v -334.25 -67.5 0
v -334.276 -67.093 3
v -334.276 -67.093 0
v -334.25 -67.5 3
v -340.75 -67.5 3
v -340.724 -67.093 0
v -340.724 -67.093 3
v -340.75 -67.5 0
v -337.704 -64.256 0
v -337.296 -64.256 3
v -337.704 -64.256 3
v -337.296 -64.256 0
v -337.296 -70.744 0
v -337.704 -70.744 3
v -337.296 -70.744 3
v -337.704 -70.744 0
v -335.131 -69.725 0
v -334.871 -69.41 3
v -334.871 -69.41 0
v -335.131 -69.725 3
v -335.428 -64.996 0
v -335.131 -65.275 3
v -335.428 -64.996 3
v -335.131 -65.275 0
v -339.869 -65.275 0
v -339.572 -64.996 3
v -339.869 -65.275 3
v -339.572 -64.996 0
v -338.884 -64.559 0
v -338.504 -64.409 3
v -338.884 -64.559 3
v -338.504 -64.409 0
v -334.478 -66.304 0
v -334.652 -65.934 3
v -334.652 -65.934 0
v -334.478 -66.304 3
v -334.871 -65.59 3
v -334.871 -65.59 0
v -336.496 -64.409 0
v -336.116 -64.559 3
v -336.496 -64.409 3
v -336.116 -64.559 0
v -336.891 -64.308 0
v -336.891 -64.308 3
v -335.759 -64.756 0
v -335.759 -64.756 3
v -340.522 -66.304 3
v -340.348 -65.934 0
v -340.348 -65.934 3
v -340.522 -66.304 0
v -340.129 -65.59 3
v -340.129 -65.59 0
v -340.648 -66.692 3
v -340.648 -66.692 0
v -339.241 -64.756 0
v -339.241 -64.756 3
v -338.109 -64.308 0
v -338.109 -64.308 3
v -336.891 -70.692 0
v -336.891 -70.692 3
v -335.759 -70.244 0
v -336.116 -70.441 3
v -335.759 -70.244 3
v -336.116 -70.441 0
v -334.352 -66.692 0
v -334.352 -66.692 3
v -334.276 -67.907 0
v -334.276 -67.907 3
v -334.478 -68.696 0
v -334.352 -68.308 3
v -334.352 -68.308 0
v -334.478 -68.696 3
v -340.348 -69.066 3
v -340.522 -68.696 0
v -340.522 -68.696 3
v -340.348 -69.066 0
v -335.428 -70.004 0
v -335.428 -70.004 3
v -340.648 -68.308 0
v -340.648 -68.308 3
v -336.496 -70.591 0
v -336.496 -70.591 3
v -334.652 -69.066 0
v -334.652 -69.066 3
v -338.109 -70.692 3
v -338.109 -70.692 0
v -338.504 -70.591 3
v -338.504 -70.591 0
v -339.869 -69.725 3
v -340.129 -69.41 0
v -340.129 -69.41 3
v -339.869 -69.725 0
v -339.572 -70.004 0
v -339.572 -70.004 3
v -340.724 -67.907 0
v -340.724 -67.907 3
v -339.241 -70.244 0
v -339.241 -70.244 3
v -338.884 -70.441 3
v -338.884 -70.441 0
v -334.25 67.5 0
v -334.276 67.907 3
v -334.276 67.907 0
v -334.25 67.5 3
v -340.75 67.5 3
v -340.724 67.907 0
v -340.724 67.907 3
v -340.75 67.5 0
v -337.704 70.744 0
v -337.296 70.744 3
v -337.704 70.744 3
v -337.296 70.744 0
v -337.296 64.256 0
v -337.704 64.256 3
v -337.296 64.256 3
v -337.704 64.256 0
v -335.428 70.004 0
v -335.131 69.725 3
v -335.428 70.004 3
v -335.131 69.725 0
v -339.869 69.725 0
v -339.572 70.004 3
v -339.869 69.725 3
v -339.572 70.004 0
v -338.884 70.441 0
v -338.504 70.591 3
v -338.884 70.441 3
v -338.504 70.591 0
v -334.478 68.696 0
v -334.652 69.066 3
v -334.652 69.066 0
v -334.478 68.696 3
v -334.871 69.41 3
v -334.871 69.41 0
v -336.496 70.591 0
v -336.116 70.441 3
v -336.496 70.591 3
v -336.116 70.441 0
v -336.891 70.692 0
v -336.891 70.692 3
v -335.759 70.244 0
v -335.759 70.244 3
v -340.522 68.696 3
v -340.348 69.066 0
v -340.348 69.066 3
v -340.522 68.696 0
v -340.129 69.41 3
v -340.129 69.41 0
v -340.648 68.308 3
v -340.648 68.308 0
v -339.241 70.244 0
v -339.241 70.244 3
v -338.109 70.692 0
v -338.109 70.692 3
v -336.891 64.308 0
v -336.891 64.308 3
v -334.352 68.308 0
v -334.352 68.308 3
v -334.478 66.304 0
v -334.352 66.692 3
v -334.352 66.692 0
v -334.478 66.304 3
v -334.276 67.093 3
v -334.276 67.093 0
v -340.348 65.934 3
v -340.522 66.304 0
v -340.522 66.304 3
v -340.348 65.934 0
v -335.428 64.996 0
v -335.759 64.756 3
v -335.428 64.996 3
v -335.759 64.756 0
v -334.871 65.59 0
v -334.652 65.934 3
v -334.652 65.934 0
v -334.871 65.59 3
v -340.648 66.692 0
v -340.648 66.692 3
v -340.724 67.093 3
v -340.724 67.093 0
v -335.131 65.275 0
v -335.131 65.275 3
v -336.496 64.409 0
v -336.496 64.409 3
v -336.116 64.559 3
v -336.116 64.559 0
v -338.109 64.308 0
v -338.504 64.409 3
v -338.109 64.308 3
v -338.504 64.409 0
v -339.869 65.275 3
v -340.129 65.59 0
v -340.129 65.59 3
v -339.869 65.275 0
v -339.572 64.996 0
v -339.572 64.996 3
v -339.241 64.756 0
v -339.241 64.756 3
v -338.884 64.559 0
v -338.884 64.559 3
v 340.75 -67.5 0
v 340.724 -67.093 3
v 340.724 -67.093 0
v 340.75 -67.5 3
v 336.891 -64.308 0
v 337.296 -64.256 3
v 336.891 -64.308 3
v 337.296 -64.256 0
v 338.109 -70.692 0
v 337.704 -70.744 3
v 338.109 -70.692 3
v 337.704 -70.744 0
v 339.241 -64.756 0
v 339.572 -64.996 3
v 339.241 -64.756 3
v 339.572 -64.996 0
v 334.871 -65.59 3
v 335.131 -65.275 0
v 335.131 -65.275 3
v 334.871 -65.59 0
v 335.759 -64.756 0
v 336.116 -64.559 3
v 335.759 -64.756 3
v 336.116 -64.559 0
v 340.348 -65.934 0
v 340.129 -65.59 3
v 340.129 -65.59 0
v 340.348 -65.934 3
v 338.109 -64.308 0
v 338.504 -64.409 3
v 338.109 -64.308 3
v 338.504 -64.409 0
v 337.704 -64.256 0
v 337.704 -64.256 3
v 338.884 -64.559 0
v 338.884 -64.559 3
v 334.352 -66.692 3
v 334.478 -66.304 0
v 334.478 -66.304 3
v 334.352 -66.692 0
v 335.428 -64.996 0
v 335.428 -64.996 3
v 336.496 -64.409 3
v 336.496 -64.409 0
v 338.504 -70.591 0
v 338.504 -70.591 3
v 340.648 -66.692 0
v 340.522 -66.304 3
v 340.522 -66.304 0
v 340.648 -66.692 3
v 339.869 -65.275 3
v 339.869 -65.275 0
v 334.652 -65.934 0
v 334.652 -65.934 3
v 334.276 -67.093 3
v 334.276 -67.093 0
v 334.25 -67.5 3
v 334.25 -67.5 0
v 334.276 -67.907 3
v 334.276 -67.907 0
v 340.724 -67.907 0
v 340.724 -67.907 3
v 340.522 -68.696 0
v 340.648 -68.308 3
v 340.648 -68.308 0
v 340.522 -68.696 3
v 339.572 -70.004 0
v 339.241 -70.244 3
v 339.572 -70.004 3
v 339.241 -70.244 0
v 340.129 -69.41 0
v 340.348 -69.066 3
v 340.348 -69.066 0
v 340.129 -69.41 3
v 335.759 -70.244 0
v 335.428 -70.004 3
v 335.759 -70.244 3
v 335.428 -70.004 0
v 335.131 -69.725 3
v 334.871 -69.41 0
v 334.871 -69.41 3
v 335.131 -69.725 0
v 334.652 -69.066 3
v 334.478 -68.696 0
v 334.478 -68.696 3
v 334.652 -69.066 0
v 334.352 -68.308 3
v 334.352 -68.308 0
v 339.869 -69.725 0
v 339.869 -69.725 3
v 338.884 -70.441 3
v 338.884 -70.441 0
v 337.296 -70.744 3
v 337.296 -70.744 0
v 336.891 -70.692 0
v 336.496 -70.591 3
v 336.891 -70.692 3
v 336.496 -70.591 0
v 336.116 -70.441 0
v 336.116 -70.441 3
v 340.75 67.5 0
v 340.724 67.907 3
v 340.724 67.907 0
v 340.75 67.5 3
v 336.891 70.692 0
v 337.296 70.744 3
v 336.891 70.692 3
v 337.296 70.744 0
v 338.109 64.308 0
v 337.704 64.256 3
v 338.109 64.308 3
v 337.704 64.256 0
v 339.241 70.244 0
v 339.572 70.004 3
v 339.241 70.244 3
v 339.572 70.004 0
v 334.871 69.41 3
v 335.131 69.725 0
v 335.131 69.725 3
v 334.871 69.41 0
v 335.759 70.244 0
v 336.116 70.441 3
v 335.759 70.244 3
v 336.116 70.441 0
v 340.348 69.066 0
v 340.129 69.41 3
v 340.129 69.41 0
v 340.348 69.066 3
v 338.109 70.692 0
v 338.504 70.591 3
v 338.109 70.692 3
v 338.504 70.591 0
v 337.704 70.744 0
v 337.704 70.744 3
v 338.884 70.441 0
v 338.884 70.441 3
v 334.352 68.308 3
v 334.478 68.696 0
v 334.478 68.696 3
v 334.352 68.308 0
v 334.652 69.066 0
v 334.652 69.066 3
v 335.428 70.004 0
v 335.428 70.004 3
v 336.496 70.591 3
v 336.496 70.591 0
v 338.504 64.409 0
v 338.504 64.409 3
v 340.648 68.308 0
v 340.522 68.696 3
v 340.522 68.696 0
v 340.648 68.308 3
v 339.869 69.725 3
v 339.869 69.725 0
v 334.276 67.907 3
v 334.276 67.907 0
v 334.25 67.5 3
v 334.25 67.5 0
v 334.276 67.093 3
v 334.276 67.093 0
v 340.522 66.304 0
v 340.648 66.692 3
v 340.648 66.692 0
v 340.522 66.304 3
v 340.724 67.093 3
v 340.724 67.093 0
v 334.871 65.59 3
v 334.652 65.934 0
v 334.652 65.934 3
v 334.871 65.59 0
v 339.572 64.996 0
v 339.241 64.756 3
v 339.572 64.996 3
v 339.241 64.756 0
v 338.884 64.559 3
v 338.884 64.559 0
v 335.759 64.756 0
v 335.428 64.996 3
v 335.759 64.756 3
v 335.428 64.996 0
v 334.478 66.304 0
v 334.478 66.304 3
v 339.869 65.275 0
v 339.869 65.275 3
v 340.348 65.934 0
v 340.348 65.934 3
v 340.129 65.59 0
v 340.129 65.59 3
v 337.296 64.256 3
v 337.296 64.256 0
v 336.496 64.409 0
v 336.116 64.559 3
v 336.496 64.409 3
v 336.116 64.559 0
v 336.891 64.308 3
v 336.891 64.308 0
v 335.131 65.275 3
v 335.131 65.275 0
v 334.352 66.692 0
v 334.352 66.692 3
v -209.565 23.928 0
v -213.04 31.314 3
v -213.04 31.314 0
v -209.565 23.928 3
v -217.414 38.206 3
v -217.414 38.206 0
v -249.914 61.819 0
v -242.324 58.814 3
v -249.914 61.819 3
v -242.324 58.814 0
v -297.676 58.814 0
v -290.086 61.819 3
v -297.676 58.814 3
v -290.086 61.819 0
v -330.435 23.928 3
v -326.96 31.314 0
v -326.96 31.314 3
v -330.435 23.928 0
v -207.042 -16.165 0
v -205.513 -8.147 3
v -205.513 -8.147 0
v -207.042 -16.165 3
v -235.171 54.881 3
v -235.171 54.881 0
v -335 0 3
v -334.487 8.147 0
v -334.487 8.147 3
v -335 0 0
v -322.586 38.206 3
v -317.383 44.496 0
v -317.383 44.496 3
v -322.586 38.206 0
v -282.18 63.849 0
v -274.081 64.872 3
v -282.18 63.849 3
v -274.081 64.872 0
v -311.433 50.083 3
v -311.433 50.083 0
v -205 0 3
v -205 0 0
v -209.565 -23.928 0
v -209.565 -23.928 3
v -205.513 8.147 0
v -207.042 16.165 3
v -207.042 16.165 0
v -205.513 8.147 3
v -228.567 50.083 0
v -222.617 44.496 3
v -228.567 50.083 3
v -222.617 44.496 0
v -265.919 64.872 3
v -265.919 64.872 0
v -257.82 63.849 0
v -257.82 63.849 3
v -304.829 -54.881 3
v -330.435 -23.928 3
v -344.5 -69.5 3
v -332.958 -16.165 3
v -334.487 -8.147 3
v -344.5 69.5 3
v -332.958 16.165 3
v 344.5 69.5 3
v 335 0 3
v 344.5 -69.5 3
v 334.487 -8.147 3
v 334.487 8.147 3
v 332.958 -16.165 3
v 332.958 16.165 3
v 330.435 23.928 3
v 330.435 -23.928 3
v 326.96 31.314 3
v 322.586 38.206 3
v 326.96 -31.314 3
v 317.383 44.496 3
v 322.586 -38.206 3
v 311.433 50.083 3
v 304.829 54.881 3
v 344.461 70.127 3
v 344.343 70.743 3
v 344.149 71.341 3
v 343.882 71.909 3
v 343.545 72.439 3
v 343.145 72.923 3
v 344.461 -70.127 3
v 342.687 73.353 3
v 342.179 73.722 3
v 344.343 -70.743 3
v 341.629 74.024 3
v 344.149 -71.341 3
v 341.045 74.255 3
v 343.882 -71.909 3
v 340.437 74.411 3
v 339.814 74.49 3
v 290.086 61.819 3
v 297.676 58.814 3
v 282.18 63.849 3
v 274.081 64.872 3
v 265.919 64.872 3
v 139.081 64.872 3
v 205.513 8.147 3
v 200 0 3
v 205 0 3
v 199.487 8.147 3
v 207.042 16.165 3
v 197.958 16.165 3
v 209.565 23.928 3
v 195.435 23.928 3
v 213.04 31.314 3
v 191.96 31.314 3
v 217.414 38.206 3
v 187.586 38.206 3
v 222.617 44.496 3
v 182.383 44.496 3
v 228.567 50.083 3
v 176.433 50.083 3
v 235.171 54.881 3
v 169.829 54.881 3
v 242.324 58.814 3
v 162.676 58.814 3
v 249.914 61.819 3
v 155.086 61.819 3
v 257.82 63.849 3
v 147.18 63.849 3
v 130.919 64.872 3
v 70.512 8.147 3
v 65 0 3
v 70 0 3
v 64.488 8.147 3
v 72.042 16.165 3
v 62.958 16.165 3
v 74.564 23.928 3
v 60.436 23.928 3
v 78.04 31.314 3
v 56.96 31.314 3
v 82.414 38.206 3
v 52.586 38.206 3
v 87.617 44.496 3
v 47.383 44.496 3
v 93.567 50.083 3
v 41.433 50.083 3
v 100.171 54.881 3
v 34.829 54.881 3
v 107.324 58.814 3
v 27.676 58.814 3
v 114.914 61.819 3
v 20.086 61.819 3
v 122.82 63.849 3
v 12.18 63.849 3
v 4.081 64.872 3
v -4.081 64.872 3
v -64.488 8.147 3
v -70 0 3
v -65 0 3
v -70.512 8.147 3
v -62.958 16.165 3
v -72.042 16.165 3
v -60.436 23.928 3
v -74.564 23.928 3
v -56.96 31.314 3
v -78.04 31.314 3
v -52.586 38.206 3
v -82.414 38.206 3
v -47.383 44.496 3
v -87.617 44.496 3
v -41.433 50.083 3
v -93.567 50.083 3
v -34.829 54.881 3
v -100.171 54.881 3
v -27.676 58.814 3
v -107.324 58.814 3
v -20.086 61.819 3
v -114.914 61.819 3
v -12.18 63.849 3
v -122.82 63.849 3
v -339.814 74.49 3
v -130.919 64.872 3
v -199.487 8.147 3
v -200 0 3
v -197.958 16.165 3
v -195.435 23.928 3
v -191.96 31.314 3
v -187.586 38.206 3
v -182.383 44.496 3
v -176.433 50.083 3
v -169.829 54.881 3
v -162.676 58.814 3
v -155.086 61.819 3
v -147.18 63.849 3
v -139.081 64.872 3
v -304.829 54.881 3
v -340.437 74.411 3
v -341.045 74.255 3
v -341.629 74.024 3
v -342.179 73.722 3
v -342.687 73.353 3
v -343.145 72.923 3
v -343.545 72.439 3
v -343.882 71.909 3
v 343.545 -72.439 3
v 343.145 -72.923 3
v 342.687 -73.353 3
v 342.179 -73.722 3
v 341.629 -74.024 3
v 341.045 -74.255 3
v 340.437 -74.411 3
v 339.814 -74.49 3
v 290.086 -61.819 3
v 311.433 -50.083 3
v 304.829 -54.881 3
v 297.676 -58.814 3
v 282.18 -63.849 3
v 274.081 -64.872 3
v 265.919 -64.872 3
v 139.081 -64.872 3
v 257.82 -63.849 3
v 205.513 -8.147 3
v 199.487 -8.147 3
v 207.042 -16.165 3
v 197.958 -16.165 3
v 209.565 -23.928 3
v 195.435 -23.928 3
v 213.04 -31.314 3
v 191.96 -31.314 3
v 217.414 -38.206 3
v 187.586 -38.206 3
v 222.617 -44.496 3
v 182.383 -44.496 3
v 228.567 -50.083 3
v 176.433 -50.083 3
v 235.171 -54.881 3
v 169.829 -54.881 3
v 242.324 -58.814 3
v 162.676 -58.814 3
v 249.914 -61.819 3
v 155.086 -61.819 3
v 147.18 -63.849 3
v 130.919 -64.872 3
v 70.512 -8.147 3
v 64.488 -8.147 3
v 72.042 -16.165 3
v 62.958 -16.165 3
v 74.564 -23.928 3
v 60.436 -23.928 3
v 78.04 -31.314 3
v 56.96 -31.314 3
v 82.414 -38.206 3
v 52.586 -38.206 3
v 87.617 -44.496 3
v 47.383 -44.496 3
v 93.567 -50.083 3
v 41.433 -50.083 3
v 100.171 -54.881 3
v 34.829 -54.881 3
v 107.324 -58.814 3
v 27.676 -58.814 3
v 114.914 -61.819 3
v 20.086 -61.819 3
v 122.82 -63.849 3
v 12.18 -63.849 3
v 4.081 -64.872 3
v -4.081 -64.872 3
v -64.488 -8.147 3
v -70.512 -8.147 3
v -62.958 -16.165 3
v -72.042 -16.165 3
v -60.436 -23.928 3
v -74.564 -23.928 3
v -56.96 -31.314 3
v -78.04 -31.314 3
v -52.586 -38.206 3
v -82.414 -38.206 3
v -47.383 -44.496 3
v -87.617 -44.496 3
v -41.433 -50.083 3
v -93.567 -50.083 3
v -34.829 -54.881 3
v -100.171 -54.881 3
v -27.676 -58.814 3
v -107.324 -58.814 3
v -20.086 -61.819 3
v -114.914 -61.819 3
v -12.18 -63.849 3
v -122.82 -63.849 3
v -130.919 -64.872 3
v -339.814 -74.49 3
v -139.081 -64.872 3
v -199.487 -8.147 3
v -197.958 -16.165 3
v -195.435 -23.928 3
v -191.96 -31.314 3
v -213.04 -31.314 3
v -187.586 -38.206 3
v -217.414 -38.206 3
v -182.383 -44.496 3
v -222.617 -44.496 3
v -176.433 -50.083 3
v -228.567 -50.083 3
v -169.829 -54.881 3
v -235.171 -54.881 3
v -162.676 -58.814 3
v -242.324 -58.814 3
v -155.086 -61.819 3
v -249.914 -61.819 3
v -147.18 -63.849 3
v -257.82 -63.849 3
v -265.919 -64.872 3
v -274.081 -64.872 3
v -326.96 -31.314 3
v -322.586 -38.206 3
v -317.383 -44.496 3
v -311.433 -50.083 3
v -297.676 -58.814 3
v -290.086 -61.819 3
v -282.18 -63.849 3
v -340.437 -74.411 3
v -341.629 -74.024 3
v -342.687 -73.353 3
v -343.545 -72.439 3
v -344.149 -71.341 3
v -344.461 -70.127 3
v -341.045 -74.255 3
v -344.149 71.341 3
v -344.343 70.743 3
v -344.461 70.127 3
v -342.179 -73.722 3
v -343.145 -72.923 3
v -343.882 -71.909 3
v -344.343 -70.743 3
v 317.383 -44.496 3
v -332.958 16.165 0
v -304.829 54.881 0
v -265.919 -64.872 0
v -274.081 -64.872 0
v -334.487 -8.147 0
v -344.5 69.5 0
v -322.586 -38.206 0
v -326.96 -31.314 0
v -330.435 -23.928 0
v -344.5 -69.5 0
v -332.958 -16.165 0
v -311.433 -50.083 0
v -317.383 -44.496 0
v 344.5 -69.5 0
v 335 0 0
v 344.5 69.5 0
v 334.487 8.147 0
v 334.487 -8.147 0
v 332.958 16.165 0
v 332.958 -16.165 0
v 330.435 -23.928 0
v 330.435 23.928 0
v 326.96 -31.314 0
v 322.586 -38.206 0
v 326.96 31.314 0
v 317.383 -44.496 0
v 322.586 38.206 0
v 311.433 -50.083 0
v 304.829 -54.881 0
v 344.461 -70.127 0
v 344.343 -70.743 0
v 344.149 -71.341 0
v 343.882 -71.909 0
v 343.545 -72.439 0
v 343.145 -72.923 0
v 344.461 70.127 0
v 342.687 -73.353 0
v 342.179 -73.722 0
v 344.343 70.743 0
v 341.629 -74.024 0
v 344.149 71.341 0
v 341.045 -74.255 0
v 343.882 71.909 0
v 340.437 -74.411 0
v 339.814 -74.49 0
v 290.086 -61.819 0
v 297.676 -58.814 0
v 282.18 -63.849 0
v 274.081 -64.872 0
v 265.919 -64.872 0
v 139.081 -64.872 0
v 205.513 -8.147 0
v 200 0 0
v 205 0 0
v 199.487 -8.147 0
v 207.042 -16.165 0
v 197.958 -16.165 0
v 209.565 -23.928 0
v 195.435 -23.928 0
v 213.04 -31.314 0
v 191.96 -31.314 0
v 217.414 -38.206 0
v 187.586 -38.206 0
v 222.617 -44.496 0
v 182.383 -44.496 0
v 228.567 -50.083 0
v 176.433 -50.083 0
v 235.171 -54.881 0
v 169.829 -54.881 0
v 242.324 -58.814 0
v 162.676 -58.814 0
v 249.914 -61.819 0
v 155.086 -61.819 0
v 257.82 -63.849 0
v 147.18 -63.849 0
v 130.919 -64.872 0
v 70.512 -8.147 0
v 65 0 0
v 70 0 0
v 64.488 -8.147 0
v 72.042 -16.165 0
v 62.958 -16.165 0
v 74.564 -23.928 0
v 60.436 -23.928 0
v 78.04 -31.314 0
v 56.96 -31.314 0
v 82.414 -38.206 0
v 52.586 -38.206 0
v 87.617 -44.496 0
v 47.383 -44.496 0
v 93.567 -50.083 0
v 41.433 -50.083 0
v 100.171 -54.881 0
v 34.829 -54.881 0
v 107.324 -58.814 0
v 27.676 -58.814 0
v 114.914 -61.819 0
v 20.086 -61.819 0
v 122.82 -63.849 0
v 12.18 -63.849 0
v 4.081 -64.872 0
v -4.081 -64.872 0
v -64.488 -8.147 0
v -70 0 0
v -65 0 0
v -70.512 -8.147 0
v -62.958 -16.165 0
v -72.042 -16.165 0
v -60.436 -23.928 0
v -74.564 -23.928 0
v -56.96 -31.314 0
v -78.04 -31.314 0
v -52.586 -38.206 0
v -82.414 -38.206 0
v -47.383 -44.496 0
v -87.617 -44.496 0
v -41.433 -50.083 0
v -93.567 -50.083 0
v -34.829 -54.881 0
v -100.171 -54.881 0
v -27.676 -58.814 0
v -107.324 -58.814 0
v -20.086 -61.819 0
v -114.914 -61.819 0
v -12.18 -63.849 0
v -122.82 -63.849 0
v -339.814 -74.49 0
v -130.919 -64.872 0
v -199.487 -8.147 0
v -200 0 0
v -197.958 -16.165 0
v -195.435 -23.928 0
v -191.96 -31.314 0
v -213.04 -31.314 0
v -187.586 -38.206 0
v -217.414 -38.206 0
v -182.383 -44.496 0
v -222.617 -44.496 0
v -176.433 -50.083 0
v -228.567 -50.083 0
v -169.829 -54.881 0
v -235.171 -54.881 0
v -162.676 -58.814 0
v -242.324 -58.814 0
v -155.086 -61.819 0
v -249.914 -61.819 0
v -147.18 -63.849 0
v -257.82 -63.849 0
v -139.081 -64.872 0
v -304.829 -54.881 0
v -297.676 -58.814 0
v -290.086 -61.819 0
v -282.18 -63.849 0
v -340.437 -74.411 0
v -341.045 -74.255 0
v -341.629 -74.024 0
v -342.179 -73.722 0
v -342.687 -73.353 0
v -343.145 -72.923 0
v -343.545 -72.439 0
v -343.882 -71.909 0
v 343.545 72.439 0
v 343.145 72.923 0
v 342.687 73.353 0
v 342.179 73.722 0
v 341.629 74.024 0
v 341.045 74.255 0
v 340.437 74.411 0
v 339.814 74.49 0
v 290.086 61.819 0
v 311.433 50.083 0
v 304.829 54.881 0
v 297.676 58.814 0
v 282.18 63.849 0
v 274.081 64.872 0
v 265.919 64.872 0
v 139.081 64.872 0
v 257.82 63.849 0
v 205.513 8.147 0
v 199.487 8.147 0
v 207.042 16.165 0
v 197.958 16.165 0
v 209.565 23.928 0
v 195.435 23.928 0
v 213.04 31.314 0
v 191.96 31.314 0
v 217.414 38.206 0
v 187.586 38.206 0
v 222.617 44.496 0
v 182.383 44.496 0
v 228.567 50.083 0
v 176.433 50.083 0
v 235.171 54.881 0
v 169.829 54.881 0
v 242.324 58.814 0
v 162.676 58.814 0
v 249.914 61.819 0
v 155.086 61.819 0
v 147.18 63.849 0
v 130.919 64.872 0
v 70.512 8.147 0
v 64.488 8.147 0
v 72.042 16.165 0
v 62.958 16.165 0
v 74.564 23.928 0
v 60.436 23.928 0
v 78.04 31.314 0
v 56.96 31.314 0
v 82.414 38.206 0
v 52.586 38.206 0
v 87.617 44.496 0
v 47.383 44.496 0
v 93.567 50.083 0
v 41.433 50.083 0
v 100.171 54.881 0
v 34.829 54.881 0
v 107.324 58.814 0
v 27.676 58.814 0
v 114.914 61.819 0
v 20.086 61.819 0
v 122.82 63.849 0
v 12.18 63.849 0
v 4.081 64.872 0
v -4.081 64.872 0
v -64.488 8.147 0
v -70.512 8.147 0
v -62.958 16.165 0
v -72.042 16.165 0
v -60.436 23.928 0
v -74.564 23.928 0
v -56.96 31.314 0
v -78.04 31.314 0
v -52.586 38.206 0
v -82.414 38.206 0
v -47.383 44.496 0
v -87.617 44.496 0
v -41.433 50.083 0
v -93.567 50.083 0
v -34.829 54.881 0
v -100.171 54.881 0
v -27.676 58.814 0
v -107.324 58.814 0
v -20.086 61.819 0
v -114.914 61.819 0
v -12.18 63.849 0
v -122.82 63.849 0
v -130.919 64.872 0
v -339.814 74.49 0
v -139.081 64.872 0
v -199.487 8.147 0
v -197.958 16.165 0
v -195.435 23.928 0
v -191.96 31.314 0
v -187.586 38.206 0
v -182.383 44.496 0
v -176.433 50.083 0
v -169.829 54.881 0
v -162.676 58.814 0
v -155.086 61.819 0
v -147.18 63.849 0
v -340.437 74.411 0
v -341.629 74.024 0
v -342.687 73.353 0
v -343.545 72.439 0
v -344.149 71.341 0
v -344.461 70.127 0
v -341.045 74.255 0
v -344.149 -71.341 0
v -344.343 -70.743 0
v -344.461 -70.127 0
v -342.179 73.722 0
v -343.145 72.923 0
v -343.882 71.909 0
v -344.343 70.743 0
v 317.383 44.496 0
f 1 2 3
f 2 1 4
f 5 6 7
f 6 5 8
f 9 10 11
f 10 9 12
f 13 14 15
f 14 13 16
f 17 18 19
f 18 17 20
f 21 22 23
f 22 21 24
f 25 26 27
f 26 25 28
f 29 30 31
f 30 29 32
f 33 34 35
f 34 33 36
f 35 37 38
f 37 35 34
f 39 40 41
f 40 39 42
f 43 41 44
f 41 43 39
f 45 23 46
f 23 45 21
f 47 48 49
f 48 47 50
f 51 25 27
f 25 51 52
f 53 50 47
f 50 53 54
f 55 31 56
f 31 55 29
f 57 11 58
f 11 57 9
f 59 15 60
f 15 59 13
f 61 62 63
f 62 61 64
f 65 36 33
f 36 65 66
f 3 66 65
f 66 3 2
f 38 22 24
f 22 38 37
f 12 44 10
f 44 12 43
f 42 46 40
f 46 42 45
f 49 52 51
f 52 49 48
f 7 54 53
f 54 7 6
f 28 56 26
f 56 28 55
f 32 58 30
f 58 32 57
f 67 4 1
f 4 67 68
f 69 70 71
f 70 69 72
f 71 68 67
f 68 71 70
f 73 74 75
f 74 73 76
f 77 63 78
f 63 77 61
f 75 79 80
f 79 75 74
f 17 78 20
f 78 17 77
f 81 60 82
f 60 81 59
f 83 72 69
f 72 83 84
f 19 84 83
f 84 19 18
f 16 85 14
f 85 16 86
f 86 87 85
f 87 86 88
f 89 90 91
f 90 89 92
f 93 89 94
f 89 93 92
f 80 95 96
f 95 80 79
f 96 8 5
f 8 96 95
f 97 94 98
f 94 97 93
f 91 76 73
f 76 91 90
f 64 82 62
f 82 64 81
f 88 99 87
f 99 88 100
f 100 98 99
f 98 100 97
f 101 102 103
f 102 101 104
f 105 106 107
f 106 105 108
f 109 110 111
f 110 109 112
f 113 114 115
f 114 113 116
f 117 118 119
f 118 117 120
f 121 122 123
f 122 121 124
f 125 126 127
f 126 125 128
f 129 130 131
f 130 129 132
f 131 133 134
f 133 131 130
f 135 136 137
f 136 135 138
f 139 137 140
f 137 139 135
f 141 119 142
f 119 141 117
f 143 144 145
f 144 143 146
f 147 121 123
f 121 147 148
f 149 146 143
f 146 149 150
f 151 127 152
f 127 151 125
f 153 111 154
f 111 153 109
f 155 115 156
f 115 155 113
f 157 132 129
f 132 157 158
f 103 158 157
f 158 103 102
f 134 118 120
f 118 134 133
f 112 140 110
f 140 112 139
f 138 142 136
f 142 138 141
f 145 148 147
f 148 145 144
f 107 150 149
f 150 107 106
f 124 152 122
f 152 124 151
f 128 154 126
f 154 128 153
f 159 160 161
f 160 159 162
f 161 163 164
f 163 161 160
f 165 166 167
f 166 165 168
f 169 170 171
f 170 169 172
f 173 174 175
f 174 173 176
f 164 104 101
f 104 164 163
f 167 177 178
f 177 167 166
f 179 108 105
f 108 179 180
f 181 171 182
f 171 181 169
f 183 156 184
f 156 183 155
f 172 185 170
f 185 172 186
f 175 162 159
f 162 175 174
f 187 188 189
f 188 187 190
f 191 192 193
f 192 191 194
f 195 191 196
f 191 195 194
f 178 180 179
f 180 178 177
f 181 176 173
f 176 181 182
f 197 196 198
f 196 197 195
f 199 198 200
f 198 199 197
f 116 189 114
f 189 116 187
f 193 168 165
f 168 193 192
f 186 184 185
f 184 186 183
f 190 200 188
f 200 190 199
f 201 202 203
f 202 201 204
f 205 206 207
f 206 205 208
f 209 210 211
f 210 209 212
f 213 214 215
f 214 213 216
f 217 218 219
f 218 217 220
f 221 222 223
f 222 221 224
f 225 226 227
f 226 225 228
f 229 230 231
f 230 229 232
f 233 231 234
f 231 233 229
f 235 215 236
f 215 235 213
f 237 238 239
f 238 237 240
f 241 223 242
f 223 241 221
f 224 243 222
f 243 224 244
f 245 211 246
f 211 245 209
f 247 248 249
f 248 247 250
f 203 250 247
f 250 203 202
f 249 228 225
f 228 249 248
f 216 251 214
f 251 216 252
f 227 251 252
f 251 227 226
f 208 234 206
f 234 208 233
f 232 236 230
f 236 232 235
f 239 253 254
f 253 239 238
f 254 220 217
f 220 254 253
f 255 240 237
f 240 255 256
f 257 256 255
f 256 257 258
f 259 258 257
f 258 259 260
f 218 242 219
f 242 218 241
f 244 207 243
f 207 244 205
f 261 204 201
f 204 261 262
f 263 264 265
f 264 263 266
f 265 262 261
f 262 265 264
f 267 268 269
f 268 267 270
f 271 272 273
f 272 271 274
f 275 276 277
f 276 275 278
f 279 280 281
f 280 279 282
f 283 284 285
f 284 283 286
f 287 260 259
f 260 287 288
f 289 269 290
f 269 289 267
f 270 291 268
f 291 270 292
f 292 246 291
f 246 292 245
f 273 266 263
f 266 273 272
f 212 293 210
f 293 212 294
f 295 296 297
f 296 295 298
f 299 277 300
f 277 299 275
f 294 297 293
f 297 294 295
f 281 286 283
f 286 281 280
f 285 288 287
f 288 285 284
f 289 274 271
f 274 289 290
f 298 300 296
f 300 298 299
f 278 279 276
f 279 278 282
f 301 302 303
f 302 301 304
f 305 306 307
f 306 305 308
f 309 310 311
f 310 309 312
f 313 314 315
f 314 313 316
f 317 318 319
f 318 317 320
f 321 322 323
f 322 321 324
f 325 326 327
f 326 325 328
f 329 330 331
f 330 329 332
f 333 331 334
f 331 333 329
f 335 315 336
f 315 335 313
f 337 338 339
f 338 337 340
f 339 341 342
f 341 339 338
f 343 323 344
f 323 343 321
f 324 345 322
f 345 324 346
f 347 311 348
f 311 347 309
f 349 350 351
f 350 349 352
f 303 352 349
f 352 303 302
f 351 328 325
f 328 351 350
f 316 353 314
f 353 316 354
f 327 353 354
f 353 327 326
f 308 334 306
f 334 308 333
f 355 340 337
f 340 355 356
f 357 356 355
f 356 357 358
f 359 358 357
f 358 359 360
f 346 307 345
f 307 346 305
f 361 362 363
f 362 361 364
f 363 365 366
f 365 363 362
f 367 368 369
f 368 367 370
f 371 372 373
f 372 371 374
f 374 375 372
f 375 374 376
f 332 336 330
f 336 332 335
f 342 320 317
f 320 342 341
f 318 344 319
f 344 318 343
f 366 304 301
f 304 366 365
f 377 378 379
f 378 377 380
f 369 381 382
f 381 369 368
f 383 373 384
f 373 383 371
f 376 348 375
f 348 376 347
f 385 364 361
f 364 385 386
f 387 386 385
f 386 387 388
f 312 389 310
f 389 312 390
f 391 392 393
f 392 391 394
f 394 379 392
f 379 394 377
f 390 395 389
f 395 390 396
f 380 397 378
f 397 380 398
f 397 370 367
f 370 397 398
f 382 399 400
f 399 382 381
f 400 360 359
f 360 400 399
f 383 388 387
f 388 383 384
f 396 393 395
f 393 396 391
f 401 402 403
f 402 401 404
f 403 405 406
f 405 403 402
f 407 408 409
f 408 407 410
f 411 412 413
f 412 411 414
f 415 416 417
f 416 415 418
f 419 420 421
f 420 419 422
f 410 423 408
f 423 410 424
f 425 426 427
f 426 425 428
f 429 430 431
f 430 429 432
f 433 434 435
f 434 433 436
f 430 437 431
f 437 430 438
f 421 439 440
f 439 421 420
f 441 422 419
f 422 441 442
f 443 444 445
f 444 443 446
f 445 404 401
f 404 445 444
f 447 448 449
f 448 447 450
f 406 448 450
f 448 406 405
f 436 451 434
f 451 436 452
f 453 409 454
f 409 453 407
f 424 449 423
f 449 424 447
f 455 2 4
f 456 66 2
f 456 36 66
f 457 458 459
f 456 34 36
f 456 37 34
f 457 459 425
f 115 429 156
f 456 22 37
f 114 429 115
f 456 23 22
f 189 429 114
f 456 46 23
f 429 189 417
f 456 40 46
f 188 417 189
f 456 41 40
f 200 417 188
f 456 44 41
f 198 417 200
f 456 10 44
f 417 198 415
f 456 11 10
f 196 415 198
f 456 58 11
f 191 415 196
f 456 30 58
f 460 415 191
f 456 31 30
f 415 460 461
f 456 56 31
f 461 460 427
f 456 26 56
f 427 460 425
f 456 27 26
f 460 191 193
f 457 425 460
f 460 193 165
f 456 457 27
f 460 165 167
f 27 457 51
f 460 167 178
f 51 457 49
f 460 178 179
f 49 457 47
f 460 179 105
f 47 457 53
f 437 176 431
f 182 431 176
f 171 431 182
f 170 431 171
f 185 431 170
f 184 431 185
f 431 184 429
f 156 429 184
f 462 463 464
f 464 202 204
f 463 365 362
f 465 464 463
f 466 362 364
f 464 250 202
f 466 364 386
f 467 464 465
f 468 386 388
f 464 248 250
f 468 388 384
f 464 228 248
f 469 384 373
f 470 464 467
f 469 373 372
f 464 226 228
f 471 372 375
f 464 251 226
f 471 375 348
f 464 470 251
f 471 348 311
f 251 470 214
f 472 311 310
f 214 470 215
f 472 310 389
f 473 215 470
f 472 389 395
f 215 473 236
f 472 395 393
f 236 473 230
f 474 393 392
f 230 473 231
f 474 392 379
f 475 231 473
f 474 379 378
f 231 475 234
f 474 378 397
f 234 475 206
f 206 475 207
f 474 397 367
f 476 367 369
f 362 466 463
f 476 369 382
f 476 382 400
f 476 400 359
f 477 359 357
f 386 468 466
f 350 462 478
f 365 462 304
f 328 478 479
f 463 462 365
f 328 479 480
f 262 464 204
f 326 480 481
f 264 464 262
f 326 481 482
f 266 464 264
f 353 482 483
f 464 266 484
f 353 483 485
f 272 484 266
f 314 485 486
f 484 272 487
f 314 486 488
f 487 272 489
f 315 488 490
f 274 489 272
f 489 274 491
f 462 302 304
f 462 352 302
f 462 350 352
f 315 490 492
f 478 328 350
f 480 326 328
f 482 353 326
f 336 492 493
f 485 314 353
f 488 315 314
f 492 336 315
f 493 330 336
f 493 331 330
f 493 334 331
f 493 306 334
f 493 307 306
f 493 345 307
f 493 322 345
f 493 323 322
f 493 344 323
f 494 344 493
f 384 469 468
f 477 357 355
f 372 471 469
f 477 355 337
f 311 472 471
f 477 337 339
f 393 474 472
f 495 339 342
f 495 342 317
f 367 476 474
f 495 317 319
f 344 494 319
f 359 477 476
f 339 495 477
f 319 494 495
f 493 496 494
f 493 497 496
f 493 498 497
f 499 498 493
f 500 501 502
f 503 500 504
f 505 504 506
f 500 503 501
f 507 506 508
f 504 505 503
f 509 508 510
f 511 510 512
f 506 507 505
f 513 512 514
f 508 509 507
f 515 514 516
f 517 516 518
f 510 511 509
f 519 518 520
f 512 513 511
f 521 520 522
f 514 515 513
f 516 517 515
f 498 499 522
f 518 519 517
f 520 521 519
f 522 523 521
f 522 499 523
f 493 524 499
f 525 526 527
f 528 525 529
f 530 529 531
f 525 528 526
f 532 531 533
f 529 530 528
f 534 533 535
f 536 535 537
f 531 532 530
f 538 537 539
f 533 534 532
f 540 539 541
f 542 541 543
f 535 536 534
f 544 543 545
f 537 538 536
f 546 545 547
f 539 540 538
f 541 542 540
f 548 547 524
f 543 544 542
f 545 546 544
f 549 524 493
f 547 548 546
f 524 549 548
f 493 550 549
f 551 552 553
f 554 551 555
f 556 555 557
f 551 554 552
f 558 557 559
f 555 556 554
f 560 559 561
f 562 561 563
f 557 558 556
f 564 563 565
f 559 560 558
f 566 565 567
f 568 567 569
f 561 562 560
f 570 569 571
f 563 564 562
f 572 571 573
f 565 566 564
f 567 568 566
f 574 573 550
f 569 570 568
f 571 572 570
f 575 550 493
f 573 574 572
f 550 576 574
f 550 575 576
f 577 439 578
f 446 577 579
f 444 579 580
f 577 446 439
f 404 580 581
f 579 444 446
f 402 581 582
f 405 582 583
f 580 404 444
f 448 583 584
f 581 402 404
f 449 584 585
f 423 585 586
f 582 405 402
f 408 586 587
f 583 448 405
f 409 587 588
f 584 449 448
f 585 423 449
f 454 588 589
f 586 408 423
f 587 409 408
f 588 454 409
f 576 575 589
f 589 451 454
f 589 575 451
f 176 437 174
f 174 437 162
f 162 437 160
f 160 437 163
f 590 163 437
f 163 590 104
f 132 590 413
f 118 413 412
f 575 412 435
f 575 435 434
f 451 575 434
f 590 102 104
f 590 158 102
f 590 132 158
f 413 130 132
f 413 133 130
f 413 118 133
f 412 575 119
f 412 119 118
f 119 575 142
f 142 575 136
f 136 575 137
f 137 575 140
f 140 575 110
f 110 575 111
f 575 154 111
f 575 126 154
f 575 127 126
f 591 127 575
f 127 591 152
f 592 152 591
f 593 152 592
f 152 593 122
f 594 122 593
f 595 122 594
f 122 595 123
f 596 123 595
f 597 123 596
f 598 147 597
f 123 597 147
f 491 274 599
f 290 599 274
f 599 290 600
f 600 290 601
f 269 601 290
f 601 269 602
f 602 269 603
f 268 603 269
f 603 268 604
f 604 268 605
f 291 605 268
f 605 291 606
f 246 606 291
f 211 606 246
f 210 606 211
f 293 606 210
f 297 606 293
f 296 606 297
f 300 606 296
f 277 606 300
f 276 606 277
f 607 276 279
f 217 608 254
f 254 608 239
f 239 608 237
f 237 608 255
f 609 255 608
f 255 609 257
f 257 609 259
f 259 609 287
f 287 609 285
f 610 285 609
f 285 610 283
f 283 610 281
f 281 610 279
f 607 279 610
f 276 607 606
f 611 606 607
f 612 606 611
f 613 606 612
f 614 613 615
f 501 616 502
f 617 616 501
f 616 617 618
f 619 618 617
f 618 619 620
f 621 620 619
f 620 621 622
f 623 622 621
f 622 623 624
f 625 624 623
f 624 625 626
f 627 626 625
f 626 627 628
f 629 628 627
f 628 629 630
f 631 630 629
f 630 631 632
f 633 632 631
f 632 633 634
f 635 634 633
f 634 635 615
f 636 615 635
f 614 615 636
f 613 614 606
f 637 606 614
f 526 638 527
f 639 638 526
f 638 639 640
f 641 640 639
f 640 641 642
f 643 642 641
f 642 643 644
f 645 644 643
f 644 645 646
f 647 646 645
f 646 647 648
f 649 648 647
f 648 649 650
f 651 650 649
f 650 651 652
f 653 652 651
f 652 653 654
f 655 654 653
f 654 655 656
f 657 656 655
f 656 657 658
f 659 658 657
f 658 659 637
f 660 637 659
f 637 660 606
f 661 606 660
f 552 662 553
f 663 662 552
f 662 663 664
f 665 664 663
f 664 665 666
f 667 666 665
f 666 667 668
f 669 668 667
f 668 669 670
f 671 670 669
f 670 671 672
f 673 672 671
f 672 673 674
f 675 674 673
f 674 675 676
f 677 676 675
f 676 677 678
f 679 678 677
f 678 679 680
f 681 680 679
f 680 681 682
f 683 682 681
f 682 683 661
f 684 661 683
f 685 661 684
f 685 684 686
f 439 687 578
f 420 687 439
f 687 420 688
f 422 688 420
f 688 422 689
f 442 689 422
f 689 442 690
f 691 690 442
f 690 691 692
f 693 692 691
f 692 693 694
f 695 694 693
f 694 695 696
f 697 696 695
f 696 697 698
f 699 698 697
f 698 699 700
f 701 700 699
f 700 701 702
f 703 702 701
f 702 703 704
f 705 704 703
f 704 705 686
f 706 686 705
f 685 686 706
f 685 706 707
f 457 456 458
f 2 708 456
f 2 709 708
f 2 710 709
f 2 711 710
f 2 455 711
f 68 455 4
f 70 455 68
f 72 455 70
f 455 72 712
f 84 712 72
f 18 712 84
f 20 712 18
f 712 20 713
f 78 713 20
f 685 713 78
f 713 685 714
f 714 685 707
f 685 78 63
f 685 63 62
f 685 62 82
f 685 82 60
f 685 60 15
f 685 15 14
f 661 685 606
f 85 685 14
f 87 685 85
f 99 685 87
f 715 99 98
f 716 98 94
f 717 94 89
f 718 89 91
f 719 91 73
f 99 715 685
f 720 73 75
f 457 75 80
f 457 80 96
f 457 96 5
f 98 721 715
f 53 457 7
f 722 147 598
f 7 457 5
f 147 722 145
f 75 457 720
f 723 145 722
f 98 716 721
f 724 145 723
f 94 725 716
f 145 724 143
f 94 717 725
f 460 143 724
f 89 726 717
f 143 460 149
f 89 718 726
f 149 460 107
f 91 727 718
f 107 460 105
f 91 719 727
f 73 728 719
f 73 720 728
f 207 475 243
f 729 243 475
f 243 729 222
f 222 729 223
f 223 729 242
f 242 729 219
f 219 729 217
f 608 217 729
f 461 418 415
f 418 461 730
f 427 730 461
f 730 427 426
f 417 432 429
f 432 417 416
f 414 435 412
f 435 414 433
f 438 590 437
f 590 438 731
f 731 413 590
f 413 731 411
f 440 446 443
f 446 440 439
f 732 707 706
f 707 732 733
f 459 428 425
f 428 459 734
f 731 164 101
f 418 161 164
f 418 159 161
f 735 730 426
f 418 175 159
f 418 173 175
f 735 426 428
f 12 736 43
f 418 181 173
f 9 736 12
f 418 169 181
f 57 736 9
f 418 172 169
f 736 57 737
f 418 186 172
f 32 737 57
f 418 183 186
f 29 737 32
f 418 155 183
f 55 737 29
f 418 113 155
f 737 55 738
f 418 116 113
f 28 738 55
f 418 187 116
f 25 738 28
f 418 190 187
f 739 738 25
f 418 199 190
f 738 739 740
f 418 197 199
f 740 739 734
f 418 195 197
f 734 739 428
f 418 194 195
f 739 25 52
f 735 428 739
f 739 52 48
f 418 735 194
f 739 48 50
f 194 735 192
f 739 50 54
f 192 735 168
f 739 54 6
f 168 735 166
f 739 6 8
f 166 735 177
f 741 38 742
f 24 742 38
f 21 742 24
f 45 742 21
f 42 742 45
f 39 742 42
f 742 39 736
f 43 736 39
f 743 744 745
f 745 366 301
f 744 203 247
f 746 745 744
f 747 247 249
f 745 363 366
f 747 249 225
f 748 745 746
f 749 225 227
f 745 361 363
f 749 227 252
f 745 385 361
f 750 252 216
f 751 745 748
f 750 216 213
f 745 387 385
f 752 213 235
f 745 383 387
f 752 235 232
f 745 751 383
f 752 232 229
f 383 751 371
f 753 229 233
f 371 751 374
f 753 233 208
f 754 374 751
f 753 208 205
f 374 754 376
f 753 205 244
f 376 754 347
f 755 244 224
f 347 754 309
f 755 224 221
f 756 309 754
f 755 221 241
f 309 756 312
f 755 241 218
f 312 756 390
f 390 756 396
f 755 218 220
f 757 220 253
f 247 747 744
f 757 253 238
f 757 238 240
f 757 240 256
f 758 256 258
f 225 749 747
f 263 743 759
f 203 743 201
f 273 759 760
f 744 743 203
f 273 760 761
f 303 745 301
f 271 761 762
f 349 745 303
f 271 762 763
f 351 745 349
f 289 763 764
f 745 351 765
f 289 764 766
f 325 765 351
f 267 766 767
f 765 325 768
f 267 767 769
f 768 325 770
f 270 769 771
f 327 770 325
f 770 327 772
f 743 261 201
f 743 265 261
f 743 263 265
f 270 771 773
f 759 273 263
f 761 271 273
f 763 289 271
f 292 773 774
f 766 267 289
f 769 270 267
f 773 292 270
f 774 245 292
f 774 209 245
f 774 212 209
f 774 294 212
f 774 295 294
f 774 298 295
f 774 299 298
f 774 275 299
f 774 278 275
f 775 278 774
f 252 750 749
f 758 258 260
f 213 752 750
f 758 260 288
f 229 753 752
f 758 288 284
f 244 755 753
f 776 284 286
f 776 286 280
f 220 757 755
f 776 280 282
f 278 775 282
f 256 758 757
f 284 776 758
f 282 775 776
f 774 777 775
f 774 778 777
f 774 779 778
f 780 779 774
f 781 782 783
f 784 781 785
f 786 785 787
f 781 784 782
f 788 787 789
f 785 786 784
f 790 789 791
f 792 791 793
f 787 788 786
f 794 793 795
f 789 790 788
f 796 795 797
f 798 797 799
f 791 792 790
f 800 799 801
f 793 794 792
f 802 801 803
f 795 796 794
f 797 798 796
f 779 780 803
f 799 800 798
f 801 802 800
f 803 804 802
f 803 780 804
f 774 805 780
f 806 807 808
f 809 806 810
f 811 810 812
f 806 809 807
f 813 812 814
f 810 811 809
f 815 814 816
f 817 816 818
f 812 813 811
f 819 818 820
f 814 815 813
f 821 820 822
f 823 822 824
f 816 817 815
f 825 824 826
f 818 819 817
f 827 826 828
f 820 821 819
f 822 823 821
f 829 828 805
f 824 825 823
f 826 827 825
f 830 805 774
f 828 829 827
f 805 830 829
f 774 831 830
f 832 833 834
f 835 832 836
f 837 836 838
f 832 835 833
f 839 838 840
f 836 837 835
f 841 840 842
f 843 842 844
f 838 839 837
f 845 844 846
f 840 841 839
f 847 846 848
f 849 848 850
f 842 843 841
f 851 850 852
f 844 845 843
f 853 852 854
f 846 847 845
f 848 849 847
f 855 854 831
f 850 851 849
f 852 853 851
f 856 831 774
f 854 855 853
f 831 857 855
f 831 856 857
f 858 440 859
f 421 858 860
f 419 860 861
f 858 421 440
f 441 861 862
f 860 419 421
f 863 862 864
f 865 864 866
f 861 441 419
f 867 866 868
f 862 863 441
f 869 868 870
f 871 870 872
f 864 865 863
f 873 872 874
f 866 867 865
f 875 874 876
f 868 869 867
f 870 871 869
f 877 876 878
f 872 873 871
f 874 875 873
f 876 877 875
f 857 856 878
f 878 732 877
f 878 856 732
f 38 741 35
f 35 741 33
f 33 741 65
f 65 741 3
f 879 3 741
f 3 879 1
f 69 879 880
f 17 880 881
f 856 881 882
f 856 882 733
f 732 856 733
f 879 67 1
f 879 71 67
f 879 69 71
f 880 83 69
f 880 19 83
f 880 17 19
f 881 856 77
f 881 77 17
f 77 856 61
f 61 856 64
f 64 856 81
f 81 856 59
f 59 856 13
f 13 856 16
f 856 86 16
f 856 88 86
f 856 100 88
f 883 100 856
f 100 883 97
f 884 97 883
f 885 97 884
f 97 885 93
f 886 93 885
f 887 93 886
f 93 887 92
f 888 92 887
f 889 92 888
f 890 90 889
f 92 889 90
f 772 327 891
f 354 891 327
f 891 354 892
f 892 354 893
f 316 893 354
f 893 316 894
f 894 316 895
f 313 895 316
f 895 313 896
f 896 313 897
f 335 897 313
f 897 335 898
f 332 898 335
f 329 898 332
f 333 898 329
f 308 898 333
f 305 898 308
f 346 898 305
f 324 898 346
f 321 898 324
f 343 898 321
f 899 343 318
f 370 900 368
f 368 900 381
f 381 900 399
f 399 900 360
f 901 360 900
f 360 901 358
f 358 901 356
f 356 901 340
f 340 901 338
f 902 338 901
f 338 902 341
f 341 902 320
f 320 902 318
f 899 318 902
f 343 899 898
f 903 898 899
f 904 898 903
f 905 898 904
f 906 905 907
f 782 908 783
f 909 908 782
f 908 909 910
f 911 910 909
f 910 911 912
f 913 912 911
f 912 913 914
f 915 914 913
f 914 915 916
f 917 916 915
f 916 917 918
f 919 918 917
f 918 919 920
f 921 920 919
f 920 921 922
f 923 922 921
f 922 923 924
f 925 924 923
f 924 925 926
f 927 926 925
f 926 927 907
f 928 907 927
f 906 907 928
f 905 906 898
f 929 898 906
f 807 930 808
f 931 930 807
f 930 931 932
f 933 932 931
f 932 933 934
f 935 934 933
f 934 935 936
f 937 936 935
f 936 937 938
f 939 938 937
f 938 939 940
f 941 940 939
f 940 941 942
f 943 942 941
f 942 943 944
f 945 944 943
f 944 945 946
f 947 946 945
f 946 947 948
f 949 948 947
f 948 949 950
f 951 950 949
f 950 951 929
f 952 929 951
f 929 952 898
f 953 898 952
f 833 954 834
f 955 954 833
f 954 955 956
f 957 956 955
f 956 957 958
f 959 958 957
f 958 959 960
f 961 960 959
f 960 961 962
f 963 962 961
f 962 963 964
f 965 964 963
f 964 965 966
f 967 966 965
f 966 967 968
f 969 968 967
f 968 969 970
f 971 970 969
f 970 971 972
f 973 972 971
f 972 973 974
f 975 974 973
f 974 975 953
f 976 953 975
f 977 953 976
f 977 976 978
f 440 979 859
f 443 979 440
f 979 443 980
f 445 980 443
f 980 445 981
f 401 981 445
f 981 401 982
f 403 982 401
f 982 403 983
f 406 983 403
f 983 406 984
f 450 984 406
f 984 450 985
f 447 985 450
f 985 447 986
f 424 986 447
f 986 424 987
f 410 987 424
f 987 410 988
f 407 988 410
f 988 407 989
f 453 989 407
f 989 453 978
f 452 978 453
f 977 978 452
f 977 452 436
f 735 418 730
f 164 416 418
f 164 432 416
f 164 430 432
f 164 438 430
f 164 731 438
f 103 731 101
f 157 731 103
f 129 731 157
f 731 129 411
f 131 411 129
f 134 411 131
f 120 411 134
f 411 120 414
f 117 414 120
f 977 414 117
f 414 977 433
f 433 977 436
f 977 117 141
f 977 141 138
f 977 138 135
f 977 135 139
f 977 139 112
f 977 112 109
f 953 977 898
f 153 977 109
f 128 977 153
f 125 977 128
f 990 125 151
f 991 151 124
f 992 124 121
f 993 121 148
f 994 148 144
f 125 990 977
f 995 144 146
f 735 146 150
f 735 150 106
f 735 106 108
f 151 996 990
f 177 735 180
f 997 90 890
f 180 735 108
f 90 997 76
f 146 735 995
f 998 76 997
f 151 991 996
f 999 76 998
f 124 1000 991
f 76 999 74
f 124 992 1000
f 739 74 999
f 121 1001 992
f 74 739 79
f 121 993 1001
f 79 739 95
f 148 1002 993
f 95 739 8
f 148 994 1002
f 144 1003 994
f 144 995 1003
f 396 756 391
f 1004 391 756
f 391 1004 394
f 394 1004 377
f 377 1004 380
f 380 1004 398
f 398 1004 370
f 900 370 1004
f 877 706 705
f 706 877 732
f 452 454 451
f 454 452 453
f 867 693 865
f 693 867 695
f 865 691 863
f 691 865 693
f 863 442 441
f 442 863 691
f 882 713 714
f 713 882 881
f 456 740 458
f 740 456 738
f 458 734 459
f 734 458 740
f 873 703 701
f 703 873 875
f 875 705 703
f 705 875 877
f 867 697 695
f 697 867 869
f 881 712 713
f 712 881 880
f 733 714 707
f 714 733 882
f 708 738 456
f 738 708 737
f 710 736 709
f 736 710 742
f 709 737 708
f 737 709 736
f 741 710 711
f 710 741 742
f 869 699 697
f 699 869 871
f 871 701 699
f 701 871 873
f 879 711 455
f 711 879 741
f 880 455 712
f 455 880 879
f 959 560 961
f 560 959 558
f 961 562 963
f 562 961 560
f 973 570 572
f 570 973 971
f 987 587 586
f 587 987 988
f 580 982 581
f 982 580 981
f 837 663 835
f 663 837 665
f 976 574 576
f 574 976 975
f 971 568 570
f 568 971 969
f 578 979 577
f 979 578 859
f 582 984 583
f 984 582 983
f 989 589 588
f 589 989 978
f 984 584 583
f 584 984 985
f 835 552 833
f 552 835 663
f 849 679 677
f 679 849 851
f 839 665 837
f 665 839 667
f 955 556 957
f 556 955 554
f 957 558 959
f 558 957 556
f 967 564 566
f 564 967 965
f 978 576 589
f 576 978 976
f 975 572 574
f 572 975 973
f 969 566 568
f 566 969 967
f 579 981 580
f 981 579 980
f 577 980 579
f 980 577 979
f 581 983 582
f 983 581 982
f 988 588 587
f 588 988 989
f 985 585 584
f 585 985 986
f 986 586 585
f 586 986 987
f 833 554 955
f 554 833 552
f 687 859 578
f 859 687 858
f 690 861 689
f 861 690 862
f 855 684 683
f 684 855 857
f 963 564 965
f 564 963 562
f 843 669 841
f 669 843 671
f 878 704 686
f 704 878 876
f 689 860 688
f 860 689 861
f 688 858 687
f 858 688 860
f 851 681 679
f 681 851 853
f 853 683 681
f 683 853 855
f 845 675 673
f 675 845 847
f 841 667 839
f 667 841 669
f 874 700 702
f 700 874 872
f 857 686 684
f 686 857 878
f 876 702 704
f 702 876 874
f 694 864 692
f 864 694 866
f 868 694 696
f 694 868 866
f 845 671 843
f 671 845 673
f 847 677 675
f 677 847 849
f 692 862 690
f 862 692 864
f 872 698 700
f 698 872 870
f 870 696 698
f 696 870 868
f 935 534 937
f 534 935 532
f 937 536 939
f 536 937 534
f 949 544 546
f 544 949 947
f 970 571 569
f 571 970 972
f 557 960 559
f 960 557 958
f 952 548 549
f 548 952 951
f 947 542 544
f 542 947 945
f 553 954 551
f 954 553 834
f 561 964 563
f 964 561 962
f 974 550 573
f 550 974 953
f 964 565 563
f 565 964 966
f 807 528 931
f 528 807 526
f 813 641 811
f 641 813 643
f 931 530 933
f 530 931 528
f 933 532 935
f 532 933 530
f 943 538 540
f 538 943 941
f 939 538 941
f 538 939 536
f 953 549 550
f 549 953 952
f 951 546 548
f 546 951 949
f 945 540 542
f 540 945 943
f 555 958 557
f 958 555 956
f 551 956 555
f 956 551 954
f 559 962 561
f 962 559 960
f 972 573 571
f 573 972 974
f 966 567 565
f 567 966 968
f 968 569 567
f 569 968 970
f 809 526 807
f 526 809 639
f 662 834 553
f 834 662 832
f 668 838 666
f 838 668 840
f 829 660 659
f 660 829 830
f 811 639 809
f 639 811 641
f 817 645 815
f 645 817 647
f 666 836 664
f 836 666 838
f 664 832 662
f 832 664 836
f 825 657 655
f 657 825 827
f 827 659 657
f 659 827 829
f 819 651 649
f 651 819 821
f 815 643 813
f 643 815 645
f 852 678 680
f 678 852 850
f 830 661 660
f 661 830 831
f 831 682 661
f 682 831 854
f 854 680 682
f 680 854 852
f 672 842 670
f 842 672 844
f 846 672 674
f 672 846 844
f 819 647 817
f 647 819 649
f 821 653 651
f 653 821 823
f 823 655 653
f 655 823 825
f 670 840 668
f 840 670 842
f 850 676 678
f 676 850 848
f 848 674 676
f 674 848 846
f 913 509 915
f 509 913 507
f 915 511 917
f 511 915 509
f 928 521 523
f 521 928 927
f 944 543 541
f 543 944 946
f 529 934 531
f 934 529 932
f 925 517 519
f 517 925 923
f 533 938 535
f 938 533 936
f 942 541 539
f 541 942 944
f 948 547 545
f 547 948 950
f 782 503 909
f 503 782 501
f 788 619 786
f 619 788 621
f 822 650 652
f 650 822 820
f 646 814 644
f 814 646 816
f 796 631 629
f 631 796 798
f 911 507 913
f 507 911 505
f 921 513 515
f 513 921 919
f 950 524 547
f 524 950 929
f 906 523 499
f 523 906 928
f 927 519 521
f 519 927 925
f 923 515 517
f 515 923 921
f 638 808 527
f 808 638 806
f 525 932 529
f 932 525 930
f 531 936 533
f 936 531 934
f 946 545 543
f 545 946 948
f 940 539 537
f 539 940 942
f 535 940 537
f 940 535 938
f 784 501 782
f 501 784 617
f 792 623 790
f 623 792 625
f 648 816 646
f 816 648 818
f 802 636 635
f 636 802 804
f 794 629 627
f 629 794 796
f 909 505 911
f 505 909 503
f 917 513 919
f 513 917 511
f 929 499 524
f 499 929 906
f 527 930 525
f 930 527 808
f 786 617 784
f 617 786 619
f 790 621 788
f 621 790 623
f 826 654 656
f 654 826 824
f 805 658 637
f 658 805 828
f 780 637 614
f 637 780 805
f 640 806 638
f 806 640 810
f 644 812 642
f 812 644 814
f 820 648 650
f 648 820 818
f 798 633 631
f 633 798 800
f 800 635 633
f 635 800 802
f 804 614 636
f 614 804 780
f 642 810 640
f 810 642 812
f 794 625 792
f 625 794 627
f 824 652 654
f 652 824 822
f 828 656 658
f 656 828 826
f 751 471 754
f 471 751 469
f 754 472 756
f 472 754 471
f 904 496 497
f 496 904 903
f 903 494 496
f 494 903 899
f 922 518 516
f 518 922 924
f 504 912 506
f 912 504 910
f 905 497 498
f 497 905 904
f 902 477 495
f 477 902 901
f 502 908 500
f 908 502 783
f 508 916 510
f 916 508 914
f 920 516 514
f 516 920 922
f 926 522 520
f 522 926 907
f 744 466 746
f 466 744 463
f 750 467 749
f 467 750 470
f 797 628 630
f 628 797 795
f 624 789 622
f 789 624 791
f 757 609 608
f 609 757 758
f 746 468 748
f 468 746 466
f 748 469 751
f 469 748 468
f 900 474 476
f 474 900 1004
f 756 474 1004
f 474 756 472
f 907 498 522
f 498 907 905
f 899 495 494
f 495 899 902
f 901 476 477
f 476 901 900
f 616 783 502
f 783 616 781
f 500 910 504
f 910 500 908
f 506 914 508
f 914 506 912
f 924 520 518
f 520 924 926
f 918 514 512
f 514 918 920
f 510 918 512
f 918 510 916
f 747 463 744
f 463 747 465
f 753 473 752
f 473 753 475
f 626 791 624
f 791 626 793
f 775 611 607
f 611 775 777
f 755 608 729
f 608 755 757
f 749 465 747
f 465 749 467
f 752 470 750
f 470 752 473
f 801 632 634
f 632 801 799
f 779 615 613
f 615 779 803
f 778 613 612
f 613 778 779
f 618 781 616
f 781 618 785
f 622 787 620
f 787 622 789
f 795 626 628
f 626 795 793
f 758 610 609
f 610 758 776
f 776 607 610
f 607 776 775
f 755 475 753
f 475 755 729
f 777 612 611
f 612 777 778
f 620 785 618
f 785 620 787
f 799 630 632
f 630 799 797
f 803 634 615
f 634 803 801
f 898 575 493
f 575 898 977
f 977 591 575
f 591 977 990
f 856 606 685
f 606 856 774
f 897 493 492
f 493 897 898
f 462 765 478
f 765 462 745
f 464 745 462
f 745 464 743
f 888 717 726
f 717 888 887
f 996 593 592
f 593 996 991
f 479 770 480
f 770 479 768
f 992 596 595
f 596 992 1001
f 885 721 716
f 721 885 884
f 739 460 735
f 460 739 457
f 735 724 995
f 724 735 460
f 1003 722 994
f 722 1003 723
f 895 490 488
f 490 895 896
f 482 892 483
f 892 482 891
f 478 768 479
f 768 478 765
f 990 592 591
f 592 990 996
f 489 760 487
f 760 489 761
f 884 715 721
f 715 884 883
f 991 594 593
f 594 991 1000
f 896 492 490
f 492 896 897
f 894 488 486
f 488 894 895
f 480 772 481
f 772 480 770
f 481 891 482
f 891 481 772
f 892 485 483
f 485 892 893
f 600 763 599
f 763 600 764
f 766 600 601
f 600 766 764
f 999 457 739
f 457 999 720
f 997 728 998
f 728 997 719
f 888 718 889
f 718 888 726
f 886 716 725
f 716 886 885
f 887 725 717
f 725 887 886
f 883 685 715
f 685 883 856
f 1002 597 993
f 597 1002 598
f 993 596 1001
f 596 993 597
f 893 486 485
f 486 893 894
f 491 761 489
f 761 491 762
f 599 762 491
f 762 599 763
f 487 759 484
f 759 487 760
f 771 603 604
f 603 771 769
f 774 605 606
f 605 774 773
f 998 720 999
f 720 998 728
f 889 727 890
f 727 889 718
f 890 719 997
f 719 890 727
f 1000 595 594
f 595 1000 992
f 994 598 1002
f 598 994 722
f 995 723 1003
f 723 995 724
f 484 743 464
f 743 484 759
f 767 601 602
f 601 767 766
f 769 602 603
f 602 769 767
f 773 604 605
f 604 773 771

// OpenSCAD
$fn = 50;


difference() {
	union() {
		hull() {
			translate(v = [-339.5000000000, 69.5000000000, 0]) {
				cylinder(h = 3, r = 5);
			}
			translate(v = [339.5000000000, 69.5000000000, 0]) {
				cylinder(h = 3, r = 5);
			}
			translate(v = [-339.5000000000, -69.5000000000, 0]) {
				cylinder(h = 3, r = 5);
			}
			translate(v = [339.5000000000, -69.5000000000, 0]) {
				cylinder(h = 3, r = 5);
			}
		}
	}
	union() {
		#translate(v = [-337.5000000000, -67.5000000000, -100.0000000000]) {
			cylinder(h = 200, r = 3.2500000000);
		}
		#translate(v = [-337.5000000000, 67.5000000000, -100.0000000000]) {
			cylinder(h = 200, r = 3.2500000000);
		}
		#translate(v = [337.5000000000, -67.5000000000, -100.0000000000]) {
			cylinder(h = 200, r = 3.2500000000);
		}
		#translate(v = [337.5000000000, 67.5000000000, -100.0000000000]) {
			cylinder(h = 200, r = 3.2500000000);
		}
		#translate(v = [-270.0000000000, 0, 0]) {
			cylinder(h = 3, r = 65.0000000000);
		}
		#translate(v = [-135.0000000000, 0, 0]) {
			cylinder(h = 3, r = 65.0000000000);
		}
		#cylinder(h = 3, r = 65.0000000000);
		#translate(v = [135.0000000000, 0, 0]) {
			cylinder(h = 3, r = 65.0000000000);
		}
		#translate(v = [270.0000000000, 0, 0]) {
			cylinder(h = 3, r = 65.0000000000);
		}
	}
}
